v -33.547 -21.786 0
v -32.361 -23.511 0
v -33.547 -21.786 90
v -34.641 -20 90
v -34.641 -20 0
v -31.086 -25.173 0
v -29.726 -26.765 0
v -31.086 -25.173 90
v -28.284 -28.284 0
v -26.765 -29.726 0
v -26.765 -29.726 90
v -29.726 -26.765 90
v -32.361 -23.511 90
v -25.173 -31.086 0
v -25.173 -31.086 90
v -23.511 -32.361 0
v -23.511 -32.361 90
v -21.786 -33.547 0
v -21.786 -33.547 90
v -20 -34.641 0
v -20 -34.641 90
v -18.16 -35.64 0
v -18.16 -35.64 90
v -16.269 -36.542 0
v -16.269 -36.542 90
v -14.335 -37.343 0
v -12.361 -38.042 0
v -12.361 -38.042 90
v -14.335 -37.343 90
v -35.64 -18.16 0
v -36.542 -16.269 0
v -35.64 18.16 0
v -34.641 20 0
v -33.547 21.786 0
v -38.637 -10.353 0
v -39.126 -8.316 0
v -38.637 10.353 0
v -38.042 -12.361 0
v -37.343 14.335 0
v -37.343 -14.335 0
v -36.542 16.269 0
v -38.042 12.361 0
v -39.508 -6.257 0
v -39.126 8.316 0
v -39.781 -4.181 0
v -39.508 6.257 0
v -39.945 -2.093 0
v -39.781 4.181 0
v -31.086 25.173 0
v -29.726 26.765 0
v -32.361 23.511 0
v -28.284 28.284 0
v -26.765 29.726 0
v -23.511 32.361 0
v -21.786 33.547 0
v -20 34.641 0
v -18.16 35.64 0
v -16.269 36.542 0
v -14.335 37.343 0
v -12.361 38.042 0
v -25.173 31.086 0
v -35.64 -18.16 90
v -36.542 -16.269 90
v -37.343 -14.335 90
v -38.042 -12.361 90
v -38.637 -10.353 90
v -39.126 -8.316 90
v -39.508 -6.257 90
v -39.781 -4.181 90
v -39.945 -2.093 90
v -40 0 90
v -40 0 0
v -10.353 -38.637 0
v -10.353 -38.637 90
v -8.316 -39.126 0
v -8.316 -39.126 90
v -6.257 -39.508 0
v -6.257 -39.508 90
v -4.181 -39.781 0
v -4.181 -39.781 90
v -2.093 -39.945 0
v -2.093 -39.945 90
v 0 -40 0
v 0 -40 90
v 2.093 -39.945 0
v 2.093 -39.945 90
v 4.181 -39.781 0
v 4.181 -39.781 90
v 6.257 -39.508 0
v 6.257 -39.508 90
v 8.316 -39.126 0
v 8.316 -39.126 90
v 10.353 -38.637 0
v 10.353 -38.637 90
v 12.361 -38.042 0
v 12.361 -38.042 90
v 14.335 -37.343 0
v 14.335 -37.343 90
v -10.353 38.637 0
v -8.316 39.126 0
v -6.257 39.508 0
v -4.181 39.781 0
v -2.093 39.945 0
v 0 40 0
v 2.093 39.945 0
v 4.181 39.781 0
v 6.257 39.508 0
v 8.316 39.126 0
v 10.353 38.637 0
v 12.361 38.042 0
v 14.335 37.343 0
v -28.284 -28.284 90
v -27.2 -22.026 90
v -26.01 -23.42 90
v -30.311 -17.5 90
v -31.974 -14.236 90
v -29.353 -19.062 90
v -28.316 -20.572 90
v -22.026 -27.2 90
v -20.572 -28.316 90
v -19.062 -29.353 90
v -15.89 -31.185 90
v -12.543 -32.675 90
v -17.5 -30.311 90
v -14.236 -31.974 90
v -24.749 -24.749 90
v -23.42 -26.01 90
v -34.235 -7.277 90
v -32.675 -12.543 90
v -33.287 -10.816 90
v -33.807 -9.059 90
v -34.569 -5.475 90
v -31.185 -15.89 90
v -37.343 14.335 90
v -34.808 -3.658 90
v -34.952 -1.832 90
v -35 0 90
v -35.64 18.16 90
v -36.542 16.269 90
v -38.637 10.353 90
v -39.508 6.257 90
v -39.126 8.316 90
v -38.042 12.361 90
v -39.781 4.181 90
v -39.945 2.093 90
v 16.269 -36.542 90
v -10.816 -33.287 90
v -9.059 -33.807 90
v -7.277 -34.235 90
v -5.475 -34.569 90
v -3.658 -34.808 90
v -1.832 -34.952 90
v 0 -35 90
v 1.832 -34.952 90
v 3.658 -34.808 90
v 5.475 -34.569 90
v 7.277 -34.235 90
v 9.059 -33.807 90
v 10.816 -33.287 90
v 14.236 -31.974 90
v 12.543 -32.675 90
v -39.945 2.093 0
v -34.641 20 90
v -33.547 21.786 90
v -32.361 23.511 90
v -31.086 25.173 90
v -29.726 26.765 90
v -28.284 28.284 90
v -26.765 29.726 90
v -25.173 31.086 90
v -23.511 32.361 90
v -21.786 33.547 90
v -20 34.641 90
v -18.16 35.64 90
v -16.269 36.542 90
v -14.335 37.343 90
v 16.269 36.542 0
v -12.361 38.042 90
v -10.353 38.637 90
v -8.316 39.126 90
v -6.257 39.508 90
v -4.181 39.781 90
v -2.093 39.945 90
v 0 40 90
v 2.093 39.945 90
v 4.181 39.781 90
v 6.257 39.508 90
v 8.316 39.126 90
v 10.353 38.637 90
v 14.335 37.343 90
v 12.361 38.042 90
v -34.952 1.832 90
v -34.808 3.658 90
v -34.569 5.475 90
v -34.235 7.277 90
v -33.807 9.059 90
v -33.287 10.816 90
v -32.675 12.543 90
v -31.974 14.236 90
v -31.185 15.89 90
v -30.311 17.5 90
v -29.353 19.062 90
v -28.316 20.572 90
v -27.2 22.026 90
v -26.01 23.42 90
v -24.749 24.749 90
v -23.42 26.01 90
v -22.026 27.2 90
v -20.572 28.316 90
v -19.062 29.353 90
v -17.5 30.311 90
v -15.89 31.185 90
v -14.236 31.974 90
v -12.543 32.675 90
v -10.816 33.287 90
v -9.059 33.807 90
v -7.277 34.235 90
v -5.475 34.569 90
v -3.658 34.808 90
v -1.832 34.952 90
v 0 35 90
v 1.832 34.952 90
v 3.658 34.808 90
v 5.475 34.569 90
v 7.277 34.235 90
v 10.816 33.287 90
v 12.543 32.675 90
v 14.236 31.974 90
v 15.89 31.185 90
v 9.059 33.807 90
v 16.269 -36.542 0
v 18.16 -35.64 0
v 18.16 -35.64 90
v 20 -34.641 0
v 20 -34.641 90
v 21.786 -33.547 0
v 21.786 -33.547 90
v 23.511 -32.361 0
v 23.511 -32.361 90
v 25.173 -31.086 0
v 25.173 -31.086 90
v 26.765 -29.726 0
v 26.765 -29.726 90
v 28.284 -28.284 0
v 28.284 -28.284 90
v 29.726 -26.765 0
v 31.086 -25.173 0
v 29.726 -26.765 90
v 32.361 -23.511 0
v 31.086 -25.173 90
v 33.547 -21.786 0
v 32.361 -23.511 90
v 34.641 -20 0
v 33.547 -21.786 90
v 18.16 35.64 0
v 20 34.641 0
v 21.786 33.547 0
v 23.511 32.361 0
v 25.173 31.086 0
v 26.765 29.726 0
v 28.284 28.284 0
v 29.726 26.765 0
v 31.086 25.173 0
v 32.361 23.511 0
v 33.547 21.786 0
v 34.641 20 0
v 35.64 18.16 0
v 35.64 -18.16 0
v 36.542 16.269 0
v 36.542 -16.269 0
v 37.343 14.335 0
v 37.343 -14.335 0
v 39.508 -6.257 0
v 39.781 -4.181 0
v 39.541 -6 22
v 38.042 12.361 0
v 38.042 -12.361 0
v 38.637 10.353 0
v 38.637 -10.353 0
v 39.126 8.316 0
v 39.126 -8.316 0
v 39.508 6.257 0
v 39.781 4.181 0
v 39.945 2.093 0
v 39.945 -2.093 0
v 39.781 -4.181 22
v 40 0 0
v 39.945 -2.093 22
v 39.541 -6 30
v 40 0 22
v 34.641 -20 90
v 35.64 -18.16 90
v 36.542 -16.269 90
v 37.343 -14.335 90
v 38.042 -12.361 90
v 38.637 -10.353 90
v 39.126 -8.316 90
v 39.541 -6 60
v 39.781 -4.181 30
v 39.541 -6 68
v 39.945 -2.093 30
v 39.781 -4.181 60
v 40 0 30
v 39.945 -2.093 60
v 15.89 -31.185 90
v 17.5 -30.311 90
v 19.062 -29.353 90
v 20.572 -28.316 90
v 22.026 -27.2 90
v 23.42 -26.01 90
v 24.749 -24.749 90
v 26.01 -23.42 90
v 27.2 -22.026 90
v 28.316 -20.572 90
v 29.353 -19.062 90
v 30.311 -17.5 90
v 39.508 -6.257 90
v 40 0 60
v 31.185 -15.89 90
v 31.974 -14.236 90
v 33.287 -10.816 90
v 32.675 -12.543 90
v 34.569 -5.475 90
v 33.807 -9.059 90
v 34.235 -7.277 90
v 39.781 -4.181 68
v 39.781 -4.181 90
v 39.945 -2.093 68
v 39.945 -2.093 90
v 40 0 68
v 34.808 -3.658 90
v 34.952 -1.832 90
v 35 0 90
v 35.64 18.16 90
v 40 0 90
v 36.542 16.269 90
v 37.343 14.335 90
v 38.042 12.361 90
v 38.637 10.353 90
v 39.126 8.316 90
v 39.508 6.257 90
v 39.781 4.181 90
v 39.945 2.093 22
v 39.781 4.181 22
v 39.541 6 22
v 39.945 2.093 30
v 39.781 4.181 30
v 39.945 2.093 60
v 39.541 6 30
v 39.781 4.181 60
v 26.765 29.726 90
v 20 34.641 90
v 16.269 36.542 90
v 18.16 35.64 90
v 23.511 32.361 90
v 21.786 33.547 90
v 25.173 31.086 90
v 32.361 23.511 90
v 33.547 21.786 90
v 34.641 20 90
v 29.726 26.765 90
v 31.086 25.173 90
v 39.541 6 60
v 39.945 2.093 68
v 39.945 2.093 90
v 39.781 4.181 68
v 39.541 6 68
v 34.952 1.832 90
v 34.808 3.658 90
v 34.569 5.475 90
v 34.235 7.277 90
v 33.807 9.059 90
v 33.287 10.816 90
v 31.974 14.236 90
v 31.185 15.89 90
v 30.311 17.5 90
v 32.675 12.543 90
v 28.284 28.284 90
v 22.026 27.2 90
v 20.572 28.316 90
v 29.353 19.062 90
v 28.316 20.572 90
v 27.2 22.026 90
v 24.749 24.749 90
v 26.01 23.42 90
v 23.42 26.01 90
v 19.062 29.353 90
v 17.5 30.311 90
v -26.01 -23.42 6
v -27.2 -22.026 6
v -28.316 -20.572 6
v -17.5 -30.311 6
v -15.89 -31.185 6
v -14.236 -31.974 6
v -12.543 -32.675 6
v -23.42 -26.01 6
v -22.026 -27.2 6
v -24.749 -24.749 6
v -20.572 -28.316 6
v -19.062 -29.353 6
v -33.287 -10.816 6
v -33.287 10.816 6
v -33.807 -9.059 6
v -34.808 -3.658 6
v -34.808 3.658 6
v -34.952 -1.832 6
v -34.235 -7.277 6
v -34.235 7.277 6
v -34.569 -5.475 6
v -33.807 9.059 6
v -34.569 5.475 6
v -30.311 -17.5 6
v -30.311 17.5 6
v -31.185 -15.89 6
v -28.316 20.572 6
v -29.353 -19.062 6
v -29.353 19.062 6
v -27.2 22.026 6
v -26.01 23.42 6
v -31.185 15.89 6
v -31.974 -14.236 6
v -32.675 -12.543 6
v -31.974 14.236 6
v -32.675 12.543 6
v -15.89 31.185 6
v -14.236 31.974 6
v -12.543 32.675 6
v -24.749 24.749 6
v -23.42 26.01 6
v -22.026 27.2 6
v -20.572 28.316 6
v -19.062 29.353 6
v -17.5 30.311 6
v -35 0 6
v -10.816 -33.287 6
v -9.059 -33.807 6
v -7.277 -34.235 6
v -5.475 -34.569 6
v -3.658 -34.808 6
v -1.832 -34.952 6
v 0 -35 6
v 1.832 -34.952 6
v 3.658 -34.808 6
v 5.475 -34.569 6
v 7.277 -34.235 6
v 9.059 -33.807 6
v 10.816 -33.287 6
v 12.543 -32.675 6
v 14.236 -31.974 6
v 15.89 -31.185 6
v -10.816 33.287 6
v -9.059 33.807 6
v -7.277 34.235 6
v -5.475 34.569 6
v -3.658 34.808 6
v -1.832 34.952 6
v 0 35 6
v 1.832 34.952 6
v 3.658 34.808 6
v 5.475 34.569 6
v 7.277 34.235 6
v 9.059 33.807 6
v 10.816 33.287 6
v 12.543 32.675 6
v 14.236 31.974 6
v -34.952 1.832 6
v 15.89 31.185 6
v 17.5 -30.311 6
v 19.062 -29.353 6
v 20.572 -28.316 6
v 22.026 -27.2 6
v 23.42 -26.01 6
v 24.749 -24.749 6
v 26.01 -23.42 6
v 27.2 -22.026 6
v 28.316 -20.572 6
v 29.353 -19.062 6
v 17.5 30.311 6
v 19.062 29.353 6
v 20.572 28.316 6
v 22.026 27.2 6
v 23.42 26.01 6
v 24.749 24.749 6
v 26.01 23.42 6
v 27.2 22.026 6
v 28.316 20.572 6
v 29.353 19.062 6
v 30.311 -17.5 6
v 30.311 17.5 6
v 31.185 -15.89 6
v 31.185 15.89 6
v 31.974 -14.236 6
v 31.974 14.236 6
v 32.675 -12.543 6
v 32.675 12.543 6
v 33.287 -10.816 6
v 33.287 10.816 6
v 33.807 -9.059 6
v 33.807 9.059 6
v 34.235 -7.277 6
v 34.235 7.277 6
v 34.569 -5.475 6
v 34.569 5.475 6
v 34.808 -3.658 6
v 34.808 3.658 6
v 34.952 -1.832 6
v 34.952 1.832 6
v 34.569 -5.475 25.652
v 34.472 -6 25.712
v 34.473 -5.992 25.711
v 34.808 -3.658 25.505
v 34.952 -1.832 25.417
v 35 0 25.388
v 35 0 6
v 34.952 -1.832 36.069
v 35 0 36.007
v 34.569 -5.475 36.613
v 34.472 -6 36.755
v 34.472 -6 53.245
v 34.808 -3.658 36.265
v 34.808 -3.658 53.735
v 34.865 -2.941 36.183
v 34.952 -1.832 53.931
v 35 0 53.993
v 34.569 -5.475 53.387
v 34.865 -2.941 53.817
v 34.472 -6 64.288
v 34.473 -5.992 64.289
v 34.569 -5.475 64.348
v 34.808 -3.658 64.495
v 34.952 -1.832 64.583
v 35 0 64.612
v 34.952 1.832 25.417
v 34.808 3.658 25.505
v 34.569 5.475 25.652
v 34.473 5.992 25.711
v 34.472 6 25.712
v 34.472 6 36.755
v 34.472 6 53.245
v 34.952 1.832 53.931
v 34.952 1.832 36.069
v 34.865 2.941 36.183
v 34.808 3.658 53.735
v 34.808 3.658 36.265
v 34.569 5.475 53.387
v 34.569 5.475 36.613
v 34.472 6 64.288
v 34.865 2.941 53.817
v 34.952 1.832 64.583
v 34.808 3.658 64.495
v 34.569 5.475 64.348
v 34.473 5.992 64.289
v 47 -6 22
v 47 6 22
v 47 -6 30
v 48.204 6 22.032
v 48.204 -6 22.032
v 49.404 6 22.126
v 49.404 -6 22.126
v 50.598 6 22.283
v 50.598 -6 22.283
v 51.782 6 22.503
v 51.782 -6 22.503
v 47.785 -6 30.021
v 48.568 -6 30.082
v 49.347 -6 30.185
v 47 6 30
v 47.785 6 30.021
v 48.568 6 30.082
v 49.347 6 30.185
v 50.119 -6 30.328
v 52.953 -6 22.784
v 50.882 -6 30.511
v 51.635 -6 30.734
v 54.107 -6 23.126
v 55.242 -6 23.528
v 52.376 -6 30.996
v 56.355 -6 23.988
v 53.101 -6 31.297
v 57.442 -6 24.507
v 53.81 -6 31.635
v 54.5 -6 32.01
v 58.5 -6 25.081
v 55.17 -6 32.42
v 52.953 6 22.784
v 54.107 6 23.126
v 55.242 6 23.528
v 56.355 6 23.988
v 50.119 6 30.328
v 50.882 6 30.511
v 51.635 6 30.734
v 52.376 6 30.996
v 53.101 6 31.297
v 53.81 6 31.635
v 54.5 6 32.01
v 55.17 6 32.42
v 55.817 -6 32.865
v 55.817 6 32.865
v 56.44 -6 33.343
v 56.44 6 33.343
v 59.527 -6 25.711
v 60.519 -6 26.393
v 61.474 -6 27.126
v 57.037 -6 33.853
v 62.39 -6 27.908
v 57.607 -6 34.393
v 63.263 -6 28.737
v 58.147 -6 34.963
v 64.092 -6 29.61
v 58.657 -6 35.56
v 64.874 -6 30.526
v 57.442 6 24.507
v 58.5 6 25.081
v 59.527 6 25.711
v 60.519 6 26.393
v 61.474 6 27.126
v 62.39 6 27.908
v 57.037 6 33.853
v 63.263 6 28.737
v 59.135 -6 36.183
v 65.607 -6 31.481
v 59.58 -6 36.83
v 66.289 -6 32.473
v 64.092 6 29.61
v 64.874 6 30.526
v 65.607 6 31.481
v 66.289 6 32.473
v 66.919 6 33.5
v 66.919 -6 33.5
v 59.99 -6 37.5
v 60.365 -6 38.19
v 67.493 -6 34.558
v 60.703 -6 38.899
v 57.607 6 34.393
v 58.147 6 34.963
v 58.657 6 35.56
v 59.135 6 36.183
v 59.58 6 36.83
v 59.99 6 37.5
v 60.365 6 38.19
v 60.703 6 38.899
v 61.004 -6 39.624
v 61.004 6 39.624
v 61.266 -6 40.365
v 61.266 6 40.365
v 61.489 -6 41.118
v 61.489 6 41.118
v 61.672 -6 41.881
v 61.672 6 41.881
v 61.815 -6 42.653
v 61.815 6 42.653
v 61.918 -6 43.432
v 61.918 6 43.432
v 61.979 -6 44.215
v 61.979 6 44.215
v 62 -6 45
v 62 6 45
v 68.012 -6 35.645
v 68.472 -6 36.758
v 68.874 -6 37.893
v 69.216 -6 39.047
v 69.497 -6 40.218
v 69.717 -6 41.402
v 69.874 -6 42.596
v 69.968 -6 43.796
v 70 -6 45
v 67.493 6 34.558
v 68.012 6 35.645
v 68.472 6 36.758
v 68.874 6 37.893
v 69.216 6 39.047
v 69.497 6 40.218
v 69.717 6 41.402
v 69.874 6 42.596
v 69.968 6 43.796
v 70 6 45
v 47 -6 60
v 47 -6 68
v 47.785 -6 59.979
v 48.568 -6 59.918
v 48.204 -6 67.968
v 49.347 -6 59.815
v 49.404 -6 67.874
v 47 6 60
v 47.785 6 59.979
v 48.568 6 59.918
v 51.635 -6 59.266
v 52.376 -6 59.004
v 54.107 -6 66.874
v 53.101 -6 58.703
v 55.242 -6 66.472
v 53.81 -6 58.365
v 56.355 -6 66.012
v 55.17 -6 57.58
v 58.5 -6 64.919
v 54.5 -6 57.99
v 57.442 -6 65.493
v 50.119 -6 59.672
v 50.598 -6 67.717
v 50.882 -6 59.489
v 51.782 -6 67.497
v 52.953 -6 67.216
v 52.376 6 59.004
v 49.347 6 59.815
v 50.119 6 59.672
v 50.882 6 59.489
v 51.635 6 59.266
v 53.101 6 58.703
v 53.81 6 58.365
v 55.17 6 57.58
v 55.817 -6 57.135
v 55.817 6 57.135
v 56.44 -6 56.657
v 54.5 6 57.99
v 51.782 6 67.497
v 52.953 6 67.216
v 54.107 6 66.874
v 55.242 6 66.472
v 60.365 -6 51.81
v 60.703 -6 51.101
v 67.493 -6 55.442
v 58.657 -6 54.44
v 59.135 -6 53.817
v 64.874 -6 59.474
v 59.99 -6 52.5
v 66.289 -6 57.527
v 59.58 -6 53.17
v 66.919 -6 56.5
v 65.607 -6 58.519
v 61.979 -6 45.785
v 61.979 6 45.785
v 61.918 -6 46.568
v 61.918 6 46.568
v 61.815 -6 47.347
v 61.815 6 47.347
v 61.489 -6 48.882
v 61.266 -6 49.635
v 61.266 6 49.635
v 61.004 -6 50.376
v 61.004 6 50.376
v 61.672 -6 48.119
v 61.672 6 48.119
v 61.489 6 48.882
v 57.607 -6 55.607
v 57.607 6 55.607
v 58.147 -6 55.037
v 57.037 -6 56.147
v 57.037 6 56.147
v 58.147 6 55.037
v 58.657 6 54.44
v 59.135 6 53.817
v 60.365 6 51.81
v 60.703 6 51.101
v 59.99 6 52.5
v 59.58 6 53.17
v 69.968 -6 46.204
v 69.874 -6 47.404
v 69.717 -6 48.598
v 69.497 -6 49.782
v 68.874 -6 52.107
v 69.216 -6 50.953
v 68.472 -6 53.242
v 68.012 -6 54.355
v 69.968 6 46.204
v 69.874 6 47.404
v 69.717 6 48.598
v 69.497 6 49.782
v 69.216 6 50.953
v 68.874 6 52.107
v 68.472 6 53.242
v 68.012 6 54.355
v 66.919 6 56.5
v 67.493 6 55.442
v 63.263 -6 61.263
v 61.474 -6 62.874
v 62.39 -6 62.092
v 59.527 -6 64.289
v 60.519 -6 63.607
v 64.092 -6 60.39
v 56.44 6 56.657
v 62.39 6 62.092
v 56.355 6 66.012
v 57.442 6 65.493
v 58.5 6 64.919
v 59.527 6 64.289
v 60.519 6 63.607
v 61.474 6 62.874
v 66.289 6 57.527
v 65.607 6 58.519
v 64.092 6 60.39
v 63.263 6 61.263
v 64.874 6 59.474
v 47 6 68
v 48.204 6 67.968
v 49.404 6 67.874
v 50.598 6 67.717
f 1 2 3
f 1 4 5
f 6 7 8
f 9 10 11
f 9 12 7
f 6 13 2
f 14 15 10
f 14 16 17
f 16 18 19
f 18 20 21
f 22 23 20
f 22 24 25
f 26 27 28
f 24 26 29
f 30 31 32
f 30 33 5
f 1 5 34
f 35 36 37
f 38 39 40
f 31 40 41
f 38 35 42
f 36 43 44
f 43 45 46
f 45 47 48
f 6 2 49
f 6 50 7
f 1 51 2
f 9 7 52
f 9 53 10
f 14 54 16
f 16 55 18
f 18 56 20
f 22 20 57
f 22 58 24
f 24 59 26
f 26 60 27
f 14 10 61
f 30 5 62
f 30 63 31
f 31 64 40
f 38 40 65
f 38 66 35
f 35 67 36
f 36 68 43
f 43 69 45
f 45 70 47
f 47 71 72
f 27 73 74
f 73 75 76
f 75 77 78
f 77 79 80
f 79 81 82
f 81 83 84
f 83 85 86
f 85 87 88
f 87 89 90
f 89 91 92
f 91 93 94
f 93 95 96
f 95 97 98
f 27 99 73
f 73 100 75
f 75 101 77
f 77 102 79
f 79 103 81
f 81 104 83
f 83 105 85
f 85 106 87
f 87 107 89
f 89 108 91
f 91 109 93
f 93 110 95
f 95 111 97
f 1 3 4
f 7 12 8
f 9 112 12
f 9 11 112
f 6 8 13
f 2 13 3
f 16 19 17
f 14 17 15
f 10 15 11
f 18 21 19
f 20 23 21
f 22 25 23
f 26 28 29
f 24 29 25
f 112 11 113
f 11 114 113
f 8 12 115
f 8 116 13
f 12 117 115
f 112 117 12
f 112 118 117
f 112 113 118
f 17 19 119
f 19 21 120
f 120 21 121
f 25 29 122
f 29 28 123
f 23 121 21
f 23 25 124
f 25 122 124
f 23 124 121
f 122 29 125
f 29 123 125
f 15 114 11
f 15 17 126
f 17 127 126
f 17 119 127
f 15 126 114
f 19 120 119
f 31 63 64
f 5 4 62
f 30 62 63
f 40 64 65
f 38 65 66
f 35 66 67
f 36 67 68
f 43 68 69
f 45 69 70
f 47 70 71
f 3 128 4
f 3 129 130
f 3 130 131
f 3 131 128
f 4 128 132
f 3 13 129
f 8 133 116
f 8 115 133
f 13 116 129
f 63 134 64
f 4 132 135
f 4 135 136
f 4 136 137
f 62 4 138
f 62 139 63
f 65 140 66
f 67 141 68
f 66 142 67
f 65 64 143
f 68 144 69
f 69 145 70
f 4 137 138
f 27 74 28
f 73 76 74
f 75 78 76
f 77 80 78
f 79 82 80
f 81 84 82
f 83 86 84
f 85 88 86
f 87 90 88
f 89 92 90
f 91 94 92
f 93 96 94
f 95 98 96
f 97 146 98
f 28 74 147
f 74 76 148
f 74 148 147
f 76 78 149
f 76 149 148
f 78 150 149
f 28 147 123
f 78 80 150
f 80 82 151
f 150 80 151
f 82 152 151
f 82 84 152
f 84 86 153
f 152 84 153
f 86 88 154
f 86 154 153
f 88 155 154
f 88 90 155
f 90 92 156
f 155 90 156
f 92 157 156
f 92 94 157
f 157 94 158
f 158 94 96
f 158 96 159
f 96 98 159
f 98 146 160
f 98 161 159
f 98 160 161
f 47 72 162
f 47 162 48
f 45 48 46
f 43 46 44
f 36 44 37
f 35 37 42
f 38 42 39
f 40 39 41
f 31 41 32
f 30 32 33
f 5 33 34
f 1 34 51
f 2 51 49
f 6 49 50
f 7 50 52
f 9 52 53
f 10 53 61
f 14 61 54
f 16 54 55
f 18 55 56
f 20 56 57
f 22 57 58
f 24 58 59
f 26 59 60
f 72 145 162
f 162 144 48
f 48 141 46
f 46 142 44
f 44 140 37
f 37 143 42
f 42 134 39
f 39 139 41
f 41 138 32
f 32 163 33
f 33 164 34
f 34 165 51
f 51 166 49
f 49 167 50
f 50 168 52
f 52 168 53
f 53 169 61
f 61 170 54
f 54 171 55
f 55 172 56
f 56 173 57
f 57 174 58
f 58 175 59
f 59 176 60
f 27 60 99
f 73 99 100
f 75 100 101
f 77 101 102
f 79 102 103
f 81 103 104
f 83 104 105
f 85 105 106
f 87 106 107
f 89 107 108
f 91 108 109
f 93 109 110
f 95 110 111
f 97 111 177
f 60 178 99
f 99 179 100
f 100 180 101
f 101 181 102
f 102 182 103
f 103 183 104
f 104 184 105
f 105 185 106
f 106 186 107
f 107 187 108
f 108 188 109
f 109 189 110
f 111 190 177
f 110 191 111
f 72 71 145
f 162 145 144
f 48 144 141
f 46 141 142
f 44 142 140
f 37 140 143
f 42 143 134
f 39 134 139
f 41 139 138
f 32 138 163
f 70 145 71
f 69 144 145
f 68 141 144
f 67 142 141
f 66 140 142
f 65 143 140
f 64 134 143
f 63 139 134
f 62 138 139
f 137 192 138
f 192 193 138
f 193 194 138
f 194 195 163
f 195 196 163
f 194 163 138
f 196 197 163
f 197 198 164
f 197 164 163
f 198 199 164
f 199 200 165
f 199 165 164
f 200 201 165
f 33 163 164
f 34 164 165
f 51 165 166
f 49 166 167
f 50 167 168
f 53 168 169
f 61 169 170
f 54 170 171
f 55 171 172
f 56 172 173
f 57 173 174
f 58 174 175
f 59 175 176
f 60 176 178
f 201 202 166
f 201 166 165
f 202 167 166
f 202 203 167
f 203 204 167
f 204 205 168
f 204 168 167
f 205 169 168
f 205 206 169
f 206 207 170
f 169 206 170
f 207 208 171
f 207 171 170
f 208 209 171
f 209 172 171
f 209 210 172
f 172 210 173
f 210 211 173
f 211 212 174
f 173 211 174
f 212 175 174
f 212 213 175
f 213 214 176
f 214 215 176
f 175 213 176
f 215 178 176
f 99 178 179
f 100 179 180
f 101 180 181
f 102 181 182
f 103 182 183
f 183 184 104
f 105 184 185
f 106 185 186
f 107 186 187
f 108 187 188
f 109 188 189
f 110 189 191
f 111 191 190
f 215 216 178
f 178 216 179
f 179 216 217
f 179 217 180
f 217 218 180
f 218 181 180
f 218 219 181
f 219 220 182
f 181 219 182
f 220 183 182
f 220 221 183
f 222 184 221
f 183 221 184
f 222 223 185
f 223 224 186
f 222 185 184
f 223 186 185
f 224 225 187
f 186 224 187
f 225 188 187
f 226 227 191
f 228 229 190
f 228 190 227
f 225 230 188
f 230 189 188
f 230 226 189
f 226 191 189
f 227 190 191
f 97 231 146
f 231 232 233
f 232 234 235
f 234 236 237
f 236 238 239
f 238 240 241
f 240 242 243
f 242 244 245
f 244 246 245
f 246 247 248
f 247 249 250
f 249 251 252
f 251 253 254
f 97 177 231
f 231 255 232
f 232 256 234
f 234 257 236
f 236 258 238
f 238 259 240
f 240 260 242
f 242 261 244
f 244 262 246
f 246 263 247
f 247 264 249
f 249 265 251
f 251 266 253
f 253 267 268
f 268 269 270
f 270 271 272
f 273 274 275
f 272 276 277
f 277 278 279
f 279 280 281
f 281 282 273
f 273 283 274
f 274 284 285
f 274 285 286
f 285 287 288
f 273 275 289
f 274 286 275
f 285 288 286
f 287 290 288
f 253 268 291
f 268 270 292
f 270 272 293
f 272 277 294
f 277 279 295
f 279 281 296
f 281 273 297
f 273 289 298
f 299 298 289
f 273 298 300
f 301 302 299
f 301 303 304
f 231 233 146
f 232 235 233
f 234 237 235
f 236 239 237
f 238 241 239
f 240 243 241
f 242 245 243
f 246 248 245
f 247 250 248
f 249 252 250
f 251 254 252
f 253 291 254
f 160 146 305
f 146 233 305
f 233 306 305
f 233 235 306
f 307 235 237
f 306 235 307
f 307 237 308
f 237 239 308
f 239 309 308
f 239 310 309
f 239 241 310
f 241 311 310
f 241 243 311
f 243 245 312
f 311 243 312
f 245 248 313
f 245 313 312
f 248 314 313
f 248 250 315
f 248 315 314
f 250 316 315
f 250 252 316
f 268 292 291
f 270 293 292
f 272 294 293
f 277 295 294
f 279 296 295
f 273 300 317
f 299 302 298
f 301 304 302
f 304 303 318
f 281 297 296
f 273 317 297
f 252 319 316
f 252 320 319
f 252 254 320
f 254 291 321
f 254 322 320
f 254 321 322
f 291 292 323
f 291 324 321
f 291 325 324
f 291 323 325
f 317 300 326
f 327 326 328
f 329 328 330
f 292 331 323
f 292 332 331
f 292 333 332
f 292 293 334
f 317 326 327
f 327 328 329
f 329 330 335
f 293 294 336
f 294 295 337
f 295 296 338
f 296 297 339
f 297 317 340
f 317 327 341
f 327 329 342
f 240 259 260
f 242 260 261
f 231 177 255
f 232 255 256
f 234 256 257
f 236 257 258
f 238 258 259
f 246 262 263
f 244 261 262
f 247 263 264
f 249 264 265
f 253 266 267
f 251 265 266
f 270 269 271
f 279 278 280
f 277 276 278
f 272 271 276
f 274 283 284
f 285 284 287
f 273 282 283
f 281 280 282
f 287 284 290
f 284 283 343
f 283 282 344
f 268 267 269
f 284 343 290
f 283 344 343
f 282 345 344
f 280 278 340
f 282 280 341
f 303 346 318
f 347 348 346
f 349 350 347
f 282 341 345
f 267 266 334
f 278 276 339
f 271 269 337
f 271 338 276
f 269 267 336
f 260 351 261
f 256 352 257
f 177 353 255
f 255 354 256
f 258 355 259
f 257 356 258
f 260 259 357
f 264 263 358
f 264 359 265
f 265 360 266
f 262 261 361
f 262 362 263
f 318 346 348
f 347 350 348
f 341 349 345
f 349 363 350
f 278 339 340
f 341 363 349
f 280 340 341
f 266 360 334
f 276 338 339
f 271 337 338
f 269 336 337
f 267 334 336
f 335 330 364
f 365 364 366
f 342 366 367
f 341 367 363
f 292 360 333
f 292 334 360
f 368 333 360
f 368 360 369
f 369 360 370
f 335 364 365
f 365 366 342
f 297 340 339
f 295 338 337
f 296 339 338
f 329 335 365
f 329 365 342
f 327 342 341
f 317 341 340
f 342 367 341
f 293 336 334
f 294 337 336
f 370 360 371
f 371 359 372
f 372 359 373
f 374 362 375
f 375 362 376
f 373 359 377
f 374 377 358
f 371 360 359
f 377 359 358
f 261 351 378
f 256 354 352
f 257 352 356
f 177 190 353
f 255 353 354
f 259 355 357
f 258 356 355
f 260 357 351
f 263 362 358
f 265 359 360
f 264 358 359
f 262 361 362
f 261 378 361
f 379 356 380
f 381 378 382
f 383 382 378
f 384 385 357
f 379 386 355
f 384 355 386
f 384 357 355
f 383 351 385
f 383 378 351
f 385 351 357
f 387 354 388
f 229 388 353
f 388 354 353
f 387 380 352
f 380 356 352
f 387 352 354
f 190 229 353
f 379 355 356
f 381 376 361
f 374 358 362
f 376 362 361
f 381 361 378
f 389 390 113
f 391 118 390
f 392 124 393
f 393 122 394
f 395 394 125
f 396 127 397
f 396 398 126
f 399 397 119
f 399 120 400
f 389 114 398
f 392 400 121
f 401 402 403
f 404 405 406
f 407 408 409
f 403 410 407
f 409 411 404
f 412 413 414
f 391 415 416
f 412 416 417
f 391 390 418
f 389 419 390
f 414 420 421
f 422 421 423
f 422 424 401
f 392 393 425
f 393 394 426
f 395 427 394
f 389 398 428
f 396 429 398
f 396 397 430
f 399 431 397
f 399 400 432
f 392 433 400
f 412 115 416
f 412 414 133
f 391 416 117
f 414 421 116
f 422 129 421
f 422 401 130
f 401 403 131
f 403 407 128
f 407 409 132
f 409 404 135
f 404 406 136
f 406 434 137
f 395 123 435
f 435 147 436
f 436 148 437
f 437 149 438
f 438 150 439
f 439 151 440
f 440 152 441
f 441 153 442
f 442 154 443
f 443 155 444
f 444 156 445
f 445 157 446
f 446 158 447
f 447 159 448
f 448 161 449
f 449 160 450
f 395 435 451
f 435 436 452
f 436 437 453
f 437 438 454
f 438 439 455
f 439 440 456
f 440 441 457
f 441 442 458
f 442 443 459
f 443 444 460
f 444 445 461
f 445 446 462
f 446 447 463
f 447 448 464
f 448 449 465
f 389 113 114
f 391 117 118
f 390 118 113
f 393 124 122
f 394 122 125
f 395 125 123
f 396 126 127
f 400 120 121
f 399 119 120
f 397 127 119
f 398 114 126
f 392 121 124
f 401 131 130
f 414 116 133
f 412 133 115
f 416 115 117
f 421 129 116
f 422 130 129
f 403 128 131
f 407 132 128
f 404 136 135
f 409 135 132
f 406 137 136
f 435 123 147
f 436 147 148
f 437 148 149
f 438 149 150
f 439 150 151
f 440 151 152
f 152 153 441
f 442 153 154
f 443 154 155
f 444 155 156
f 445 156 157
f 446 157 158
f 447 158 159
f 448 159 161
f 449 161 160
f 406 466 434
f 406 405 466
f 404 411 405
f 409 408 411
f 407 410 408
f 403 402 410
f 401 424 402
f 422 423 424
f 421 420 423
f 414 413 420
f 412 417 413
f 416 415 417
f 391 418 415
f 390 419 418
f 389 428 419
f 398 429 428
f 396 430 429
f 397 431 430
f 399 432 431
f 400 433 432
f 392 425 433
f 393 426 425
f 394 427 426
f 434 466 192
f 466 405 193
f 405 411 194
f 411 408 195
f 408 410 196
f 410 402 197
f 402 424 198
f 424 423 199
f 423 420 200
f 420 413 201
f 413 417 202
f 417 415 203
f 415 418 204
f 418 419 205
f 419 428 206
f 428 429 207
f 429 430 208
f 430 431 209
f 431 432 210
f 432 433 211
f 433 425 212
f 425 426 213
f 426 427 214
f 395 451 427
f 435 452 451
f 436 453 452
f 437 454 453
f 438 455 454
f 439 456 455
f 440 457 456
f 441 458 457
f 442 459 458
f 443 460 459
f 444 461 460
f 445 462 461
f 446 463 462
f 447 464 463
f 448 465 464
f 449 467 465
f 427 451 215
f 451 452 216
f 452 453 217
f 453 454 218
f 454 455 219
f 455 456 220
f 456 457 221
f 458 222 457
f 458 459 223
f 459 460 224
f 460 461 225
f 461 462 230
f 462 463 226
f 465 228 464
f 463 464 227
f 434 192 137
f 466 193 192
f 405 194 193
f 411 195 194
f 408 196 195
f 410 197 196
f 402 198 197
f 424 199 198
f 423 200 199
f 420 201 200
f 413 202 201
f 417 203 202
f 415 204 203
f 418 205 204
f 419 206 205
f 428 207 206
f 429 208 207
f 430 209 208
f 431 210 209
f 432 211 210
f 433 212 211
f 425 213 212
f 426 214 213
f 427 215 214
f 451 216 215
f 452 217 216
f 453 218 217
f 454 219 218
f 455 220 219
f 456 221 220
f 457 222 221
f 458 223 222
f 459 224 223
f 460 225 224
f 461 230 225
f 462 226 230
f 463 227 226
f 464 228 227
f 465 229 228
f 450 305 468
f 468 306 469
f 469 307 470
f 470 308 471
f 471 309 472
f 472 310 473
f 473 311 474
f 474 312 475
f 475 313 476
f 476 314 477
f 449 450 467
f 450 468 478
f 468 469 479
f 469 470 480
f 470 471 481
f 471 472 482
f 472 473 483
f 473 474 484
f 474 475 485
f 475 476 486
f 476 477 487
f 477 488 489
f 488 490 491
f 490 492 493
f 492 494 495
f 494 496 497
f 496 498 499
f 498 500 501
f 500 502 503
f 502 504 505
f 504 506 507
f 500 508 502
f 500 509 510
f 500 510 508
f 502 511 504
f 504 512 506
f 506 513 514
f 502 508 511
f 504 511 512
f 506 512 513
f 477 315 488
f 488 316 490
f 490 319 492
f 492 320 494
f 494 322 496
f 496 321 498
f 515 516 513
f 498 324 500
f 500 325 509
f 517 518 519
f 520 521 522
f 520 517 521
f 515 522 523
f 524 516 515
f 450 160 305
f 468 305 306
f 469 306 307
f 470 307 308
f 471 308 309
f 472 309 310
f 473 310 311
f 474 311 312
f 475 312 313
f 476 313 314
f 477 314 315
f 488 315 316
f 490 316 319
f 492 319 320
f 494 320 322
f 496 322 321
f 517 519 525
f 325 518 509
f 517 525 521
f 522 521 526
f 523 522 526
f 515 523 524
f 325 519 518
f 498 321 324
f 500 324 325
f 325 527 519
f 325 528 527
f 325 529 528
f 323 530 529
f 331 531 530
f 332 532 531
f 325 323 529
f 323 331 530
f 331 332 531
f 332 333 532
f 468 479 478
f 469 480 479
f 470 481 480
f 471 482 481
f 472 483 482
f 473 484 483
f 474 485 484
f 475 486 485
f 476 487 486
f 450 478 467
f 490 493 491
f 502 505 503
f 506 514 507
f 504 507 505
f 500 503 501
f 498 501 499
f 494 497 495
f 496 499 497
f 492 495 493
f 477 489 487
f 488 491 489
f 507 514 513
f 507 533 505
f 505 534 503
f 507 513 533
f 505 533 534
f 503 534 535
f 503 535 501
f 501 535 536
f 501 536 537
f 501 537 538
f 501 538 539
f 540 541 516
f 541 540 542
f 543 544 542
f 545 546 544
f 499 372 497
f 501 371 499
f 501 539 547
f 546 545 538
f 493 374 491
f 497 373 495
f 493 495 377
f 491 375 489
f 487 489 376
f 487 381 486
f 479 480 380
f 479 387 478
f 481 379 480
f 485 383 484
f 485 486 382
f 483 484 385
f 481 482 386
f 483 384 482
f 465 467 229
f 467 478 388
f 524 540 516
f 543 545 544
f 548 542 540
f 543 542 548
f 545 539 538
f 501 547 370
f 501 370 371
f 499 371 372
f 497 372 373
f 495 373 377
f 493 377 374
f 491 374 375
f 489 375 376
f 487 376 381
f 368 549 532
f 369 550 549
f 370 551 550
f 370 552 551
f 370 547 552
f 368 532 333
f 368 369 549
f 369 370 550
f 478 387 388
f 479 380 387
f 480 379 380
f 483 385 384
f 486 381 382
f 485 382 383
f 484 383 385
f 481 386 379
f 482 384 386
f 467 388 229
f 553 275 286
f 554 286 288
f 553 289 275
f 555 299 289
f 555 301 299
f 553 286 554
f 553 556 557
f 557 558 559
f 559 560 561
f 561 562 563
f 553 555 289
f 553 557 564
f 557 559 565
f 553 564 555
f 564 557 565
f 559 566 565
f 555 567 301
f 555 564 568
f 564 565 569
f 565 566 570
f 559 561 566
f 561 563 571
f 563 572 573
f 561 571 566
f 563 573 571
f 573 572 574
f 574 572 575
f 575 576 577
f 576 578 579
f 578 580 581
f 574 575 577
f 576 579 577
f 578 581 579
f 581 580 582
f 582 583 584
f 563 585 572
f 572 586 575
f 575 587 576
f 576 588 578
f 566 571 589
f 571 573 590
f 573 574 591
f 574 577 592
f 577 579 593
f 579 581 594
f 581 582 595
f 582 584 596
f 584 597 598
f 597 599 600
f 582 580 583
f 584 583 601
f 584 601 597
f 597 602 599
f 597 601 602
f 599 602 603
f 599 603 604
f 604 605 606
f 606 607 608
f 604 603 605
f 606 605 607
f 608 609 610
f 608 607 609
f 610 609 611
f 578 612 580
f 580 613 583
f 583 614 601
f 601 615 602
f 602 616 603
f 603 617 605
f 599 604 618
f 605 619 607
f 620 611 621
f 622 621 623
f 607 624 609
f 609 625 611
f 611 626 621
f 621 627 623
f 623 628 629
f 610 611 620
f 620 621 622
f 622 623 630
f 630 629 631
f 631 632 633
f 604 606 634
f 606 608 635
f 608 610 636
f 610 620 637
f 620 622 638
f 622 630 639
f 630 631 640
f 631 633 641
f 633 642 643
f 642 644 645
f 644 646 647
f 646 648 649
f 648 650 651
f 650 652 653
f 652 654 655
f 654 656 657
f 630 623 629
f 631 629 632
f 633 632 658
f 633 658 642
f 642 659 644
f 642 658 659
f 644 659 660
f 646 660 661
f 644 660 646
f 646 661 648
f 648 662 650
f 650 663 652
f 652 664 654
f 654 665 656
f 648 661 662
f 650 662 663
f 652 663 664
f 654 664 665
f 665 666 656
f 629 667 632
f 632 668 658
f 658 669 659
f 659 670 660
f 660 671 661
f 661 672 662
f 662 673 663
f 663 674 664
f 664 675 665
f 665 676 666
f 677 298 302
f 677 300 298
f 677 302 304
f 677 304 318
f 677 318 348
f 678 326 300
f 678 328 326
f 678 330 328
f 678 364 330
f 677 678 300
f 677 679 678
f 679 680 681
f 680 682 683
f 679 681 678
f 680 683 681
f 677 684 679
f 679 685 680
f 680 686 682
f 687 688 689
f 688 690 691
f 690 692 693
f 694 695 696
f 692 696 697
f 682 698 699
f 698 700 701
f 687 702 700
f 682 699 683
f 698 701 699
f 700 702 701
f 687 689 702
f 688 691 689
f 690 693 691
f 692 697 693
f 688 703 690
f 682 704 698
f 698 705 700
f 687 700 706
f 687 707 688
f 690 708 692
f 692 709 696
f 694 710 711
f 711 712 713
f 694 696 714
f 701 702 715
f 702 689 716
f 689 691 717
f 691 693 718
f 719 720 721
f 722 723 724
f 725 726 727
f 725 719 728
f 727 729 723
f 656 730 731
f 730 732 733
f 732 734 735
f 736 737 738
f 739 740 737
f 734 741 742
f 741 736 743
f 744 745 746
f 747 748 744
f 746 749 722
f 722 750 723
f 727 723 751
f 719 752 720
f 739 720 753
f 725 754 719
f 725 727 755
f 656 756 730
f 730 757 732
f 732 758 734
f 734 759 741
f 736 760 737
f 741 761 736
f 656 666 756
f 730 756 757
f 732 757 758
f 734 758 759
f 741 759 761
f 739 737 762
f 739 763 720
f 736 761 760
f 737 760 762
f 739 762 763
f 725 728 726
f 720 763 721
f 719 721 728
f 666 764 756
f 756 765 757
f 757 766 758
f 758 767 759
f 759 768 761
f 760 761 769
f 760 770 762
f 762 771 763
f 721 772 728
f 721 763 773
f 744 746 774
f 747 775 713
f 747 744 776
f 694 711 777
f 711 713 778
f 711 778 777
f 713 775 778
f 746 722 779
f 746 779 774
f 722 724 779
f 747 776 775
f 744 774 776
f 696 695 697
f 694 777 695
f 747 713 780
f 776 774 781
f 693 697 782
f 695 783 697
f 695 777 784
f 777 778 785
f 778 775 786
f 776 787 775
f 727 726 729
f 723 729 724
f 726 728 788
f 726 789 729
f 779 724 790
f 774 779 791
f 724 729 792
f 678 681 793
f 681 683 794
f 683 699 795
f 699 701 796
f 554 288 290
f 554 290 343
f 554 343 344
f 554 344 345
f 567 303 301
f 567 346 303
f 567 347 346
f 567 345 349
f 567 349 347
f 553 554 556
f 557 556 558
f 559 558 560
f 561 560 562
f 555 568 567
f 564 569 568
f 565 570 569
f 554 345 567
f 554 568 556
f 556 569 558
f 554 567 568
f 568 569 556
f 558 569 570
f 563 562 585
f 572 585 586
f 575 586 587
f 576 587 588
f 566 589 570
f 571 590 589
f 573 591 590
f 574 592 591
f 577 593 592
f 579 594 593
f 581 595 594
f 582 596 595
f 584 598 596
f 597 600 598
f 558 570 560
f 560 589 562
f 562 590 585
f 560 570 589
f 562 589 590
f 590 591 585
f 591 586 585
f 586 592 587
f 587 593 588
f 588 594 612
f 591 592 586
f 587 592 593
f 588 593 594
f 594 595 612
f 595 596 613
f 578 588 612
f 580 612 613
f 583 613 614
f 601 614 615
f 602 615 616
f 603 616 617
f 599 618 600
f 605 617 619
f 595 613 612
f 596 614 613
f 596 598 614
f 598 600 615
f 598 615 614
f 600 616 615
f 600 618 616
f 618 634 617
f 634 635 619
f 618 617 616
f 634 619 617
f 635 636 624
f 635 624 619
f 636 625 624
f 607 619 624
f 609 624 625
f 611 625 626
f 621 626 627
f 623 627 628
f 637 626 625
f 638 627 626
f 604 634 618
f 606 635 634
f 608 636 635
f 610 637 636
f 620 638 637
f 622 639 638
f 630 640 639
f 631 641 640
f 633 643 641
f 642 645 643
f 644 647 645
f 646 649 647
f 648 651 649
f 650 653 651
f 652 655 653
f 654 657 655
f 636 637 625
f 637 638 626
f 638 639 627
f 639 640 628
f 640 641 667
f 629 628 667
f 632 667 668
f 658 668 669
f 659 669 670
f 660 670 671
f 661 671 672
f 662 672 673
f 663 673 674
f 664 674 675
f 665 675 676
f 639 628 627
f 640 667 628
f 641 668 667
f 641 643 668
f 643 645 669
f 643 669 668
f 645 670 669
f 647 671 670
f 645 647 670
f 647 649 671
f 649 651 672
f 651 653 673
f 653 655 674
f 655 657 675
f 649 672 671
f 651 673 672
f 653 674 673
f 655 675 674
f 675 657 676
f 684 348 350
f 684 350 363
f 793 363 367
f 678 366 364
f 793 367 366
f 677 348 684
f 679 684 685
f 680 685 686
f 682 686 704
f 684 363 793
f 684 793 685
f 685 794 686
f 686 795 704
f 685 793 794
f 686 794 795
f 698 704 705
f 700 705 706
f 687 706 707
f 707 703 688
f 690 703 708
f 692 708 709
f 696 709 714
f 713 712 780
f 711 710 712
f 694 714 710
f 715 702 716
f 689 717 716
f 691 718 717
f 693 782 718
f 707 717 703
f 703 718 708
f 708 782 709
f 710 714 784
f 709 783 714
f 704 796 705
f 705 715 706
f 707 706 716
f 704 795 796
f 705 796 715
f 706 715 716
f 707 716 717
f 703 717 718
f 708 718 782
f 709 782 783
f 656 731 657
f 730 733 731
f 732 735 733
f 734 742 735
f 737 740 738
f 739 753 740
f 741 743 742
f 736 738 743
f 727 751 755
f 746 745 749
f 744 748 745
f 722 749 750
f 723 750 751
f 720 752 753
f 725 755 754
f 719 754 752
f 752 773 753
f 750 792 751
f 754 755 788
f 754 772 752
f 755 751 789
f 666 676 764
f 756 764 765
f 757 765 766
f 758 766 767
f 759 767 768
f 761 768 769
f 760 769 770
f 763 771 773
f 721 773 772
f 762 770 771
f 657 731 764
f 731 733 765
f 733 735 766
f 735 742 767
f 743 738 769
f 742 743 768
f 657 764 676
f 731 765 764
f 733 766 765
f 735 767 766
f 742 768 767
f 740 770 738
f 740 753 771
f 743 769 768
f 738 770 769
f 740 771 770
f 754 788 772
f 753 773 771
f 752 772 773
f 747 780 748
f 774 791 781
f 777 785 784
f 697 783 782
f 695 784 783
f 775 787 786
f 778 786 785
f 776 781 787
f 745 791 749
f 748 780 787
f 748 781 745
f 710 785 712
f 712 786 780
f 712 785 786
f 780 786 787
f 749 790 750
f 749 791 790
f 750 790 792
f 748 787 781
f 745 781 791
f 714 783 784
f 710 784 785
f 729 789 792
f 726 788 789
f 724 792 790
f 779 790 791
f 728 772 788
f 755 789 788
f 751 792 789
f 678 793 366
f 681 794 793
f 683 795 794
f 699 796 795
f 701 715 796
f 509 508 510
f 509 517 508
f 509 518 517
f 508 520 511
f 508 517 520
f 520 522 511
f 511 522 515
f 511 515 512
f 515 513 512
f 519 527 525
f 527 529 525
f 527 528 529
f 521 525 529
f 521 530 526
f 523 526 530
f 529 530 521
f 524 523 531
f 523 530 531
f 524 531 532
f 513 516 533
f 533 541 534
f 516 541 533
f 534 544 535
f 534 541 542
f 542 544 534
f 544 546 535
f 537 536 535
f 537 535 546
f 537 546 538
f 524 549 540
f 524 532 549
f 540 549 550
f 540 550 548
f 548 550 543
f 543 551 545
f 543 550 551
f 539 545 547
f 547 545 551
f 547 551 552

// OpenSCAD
// ===== パラメータ =====
$fn = 120;

body_od      = 80;      // 外径
body_id      = 70;      // 内径
body_h       = 90;      // 高さ
bottom_t     = 6;       // 底の厚み

handle_hole_h = 30;     // 取手内側の空間 高さ
handle_hole_w = 25;     // 取手内側の空間 幅(半径方向)
handle_t      = 8;      // 取手の断面の太さ(半径方向・上下方向)
handle_w      = 12;     // 取手の厚み(Y方向)
handle_z      = body_h / 2;   // 取手の高さ中心
embed         = 3;      // 本体へのめり込み量(確実に union するため)

body_or = body_od / 2;
body_ir = body_id / 2;

// ===== 本体 =====
module body() {
    difference() {
        cylinder(h = body_h, r = body_or);
        translate([0, 0, bottom_t])
            cylinder(h = body_h - bottom_t + 1, r = body_ir);
    }
}

// ===== 取手(D字形状:外側が半円、本体側が直線) =====
// XZ 平面上の 2D の D 字リングを作り、Y 方向に押し出す
module handle_profile() {
    // 外形 D
    outer_h = handle_hole_h + 2 * handle_t;   // 46
    outer_w = handle_hole_w + handle_t;       // 33 (本体面から外側へ)

    difference() {
        // 外側 D 形状(左端が直線、右側が半円)
        d_shape(outer_w, outer_h);
        // 内側の空間 D 形状
        translate([0, 0])
            d_shape(handle_hole_w, handle_hole_h);
    }
}

// 幅 w(x: 0 → w)、高さ h(z: -h/2 → h/2)の D 形状
// 左端(x=0)が直線、右側が半円 + 直線部
module d_shape(w, h) {
    r = h / 2;
    straight = max(w - r, 0.01);
    union() {
        translate([0, -r]) square([straight, h]);
        translate([straight, 0]) circle(r = r);
    }
}

module handle() {
    // XZ 平面の 2D プロファイルを Y 方向に押し出して、+X 側面に配置
    translate([body_or - embed, 0, handle_z])
        rotate([90, 0, 0])
            translate([0, 0, -handle_w / 2])
                linear_extrude(height = handle_w)
                    handle_profile();
}

// ===== 合体 =====
module mug() {
    union() {
        body();
        // 本体内部にはみ出さないよう、外形でクリップ
        difference() {
            handle();
            // マグ内部の中空部分を侵さない
            translate([0, 0, bottom_t])
                cylinder(h = body_h - bottom_t + 1, r = body_ir);
        }
    }
}

mug();
